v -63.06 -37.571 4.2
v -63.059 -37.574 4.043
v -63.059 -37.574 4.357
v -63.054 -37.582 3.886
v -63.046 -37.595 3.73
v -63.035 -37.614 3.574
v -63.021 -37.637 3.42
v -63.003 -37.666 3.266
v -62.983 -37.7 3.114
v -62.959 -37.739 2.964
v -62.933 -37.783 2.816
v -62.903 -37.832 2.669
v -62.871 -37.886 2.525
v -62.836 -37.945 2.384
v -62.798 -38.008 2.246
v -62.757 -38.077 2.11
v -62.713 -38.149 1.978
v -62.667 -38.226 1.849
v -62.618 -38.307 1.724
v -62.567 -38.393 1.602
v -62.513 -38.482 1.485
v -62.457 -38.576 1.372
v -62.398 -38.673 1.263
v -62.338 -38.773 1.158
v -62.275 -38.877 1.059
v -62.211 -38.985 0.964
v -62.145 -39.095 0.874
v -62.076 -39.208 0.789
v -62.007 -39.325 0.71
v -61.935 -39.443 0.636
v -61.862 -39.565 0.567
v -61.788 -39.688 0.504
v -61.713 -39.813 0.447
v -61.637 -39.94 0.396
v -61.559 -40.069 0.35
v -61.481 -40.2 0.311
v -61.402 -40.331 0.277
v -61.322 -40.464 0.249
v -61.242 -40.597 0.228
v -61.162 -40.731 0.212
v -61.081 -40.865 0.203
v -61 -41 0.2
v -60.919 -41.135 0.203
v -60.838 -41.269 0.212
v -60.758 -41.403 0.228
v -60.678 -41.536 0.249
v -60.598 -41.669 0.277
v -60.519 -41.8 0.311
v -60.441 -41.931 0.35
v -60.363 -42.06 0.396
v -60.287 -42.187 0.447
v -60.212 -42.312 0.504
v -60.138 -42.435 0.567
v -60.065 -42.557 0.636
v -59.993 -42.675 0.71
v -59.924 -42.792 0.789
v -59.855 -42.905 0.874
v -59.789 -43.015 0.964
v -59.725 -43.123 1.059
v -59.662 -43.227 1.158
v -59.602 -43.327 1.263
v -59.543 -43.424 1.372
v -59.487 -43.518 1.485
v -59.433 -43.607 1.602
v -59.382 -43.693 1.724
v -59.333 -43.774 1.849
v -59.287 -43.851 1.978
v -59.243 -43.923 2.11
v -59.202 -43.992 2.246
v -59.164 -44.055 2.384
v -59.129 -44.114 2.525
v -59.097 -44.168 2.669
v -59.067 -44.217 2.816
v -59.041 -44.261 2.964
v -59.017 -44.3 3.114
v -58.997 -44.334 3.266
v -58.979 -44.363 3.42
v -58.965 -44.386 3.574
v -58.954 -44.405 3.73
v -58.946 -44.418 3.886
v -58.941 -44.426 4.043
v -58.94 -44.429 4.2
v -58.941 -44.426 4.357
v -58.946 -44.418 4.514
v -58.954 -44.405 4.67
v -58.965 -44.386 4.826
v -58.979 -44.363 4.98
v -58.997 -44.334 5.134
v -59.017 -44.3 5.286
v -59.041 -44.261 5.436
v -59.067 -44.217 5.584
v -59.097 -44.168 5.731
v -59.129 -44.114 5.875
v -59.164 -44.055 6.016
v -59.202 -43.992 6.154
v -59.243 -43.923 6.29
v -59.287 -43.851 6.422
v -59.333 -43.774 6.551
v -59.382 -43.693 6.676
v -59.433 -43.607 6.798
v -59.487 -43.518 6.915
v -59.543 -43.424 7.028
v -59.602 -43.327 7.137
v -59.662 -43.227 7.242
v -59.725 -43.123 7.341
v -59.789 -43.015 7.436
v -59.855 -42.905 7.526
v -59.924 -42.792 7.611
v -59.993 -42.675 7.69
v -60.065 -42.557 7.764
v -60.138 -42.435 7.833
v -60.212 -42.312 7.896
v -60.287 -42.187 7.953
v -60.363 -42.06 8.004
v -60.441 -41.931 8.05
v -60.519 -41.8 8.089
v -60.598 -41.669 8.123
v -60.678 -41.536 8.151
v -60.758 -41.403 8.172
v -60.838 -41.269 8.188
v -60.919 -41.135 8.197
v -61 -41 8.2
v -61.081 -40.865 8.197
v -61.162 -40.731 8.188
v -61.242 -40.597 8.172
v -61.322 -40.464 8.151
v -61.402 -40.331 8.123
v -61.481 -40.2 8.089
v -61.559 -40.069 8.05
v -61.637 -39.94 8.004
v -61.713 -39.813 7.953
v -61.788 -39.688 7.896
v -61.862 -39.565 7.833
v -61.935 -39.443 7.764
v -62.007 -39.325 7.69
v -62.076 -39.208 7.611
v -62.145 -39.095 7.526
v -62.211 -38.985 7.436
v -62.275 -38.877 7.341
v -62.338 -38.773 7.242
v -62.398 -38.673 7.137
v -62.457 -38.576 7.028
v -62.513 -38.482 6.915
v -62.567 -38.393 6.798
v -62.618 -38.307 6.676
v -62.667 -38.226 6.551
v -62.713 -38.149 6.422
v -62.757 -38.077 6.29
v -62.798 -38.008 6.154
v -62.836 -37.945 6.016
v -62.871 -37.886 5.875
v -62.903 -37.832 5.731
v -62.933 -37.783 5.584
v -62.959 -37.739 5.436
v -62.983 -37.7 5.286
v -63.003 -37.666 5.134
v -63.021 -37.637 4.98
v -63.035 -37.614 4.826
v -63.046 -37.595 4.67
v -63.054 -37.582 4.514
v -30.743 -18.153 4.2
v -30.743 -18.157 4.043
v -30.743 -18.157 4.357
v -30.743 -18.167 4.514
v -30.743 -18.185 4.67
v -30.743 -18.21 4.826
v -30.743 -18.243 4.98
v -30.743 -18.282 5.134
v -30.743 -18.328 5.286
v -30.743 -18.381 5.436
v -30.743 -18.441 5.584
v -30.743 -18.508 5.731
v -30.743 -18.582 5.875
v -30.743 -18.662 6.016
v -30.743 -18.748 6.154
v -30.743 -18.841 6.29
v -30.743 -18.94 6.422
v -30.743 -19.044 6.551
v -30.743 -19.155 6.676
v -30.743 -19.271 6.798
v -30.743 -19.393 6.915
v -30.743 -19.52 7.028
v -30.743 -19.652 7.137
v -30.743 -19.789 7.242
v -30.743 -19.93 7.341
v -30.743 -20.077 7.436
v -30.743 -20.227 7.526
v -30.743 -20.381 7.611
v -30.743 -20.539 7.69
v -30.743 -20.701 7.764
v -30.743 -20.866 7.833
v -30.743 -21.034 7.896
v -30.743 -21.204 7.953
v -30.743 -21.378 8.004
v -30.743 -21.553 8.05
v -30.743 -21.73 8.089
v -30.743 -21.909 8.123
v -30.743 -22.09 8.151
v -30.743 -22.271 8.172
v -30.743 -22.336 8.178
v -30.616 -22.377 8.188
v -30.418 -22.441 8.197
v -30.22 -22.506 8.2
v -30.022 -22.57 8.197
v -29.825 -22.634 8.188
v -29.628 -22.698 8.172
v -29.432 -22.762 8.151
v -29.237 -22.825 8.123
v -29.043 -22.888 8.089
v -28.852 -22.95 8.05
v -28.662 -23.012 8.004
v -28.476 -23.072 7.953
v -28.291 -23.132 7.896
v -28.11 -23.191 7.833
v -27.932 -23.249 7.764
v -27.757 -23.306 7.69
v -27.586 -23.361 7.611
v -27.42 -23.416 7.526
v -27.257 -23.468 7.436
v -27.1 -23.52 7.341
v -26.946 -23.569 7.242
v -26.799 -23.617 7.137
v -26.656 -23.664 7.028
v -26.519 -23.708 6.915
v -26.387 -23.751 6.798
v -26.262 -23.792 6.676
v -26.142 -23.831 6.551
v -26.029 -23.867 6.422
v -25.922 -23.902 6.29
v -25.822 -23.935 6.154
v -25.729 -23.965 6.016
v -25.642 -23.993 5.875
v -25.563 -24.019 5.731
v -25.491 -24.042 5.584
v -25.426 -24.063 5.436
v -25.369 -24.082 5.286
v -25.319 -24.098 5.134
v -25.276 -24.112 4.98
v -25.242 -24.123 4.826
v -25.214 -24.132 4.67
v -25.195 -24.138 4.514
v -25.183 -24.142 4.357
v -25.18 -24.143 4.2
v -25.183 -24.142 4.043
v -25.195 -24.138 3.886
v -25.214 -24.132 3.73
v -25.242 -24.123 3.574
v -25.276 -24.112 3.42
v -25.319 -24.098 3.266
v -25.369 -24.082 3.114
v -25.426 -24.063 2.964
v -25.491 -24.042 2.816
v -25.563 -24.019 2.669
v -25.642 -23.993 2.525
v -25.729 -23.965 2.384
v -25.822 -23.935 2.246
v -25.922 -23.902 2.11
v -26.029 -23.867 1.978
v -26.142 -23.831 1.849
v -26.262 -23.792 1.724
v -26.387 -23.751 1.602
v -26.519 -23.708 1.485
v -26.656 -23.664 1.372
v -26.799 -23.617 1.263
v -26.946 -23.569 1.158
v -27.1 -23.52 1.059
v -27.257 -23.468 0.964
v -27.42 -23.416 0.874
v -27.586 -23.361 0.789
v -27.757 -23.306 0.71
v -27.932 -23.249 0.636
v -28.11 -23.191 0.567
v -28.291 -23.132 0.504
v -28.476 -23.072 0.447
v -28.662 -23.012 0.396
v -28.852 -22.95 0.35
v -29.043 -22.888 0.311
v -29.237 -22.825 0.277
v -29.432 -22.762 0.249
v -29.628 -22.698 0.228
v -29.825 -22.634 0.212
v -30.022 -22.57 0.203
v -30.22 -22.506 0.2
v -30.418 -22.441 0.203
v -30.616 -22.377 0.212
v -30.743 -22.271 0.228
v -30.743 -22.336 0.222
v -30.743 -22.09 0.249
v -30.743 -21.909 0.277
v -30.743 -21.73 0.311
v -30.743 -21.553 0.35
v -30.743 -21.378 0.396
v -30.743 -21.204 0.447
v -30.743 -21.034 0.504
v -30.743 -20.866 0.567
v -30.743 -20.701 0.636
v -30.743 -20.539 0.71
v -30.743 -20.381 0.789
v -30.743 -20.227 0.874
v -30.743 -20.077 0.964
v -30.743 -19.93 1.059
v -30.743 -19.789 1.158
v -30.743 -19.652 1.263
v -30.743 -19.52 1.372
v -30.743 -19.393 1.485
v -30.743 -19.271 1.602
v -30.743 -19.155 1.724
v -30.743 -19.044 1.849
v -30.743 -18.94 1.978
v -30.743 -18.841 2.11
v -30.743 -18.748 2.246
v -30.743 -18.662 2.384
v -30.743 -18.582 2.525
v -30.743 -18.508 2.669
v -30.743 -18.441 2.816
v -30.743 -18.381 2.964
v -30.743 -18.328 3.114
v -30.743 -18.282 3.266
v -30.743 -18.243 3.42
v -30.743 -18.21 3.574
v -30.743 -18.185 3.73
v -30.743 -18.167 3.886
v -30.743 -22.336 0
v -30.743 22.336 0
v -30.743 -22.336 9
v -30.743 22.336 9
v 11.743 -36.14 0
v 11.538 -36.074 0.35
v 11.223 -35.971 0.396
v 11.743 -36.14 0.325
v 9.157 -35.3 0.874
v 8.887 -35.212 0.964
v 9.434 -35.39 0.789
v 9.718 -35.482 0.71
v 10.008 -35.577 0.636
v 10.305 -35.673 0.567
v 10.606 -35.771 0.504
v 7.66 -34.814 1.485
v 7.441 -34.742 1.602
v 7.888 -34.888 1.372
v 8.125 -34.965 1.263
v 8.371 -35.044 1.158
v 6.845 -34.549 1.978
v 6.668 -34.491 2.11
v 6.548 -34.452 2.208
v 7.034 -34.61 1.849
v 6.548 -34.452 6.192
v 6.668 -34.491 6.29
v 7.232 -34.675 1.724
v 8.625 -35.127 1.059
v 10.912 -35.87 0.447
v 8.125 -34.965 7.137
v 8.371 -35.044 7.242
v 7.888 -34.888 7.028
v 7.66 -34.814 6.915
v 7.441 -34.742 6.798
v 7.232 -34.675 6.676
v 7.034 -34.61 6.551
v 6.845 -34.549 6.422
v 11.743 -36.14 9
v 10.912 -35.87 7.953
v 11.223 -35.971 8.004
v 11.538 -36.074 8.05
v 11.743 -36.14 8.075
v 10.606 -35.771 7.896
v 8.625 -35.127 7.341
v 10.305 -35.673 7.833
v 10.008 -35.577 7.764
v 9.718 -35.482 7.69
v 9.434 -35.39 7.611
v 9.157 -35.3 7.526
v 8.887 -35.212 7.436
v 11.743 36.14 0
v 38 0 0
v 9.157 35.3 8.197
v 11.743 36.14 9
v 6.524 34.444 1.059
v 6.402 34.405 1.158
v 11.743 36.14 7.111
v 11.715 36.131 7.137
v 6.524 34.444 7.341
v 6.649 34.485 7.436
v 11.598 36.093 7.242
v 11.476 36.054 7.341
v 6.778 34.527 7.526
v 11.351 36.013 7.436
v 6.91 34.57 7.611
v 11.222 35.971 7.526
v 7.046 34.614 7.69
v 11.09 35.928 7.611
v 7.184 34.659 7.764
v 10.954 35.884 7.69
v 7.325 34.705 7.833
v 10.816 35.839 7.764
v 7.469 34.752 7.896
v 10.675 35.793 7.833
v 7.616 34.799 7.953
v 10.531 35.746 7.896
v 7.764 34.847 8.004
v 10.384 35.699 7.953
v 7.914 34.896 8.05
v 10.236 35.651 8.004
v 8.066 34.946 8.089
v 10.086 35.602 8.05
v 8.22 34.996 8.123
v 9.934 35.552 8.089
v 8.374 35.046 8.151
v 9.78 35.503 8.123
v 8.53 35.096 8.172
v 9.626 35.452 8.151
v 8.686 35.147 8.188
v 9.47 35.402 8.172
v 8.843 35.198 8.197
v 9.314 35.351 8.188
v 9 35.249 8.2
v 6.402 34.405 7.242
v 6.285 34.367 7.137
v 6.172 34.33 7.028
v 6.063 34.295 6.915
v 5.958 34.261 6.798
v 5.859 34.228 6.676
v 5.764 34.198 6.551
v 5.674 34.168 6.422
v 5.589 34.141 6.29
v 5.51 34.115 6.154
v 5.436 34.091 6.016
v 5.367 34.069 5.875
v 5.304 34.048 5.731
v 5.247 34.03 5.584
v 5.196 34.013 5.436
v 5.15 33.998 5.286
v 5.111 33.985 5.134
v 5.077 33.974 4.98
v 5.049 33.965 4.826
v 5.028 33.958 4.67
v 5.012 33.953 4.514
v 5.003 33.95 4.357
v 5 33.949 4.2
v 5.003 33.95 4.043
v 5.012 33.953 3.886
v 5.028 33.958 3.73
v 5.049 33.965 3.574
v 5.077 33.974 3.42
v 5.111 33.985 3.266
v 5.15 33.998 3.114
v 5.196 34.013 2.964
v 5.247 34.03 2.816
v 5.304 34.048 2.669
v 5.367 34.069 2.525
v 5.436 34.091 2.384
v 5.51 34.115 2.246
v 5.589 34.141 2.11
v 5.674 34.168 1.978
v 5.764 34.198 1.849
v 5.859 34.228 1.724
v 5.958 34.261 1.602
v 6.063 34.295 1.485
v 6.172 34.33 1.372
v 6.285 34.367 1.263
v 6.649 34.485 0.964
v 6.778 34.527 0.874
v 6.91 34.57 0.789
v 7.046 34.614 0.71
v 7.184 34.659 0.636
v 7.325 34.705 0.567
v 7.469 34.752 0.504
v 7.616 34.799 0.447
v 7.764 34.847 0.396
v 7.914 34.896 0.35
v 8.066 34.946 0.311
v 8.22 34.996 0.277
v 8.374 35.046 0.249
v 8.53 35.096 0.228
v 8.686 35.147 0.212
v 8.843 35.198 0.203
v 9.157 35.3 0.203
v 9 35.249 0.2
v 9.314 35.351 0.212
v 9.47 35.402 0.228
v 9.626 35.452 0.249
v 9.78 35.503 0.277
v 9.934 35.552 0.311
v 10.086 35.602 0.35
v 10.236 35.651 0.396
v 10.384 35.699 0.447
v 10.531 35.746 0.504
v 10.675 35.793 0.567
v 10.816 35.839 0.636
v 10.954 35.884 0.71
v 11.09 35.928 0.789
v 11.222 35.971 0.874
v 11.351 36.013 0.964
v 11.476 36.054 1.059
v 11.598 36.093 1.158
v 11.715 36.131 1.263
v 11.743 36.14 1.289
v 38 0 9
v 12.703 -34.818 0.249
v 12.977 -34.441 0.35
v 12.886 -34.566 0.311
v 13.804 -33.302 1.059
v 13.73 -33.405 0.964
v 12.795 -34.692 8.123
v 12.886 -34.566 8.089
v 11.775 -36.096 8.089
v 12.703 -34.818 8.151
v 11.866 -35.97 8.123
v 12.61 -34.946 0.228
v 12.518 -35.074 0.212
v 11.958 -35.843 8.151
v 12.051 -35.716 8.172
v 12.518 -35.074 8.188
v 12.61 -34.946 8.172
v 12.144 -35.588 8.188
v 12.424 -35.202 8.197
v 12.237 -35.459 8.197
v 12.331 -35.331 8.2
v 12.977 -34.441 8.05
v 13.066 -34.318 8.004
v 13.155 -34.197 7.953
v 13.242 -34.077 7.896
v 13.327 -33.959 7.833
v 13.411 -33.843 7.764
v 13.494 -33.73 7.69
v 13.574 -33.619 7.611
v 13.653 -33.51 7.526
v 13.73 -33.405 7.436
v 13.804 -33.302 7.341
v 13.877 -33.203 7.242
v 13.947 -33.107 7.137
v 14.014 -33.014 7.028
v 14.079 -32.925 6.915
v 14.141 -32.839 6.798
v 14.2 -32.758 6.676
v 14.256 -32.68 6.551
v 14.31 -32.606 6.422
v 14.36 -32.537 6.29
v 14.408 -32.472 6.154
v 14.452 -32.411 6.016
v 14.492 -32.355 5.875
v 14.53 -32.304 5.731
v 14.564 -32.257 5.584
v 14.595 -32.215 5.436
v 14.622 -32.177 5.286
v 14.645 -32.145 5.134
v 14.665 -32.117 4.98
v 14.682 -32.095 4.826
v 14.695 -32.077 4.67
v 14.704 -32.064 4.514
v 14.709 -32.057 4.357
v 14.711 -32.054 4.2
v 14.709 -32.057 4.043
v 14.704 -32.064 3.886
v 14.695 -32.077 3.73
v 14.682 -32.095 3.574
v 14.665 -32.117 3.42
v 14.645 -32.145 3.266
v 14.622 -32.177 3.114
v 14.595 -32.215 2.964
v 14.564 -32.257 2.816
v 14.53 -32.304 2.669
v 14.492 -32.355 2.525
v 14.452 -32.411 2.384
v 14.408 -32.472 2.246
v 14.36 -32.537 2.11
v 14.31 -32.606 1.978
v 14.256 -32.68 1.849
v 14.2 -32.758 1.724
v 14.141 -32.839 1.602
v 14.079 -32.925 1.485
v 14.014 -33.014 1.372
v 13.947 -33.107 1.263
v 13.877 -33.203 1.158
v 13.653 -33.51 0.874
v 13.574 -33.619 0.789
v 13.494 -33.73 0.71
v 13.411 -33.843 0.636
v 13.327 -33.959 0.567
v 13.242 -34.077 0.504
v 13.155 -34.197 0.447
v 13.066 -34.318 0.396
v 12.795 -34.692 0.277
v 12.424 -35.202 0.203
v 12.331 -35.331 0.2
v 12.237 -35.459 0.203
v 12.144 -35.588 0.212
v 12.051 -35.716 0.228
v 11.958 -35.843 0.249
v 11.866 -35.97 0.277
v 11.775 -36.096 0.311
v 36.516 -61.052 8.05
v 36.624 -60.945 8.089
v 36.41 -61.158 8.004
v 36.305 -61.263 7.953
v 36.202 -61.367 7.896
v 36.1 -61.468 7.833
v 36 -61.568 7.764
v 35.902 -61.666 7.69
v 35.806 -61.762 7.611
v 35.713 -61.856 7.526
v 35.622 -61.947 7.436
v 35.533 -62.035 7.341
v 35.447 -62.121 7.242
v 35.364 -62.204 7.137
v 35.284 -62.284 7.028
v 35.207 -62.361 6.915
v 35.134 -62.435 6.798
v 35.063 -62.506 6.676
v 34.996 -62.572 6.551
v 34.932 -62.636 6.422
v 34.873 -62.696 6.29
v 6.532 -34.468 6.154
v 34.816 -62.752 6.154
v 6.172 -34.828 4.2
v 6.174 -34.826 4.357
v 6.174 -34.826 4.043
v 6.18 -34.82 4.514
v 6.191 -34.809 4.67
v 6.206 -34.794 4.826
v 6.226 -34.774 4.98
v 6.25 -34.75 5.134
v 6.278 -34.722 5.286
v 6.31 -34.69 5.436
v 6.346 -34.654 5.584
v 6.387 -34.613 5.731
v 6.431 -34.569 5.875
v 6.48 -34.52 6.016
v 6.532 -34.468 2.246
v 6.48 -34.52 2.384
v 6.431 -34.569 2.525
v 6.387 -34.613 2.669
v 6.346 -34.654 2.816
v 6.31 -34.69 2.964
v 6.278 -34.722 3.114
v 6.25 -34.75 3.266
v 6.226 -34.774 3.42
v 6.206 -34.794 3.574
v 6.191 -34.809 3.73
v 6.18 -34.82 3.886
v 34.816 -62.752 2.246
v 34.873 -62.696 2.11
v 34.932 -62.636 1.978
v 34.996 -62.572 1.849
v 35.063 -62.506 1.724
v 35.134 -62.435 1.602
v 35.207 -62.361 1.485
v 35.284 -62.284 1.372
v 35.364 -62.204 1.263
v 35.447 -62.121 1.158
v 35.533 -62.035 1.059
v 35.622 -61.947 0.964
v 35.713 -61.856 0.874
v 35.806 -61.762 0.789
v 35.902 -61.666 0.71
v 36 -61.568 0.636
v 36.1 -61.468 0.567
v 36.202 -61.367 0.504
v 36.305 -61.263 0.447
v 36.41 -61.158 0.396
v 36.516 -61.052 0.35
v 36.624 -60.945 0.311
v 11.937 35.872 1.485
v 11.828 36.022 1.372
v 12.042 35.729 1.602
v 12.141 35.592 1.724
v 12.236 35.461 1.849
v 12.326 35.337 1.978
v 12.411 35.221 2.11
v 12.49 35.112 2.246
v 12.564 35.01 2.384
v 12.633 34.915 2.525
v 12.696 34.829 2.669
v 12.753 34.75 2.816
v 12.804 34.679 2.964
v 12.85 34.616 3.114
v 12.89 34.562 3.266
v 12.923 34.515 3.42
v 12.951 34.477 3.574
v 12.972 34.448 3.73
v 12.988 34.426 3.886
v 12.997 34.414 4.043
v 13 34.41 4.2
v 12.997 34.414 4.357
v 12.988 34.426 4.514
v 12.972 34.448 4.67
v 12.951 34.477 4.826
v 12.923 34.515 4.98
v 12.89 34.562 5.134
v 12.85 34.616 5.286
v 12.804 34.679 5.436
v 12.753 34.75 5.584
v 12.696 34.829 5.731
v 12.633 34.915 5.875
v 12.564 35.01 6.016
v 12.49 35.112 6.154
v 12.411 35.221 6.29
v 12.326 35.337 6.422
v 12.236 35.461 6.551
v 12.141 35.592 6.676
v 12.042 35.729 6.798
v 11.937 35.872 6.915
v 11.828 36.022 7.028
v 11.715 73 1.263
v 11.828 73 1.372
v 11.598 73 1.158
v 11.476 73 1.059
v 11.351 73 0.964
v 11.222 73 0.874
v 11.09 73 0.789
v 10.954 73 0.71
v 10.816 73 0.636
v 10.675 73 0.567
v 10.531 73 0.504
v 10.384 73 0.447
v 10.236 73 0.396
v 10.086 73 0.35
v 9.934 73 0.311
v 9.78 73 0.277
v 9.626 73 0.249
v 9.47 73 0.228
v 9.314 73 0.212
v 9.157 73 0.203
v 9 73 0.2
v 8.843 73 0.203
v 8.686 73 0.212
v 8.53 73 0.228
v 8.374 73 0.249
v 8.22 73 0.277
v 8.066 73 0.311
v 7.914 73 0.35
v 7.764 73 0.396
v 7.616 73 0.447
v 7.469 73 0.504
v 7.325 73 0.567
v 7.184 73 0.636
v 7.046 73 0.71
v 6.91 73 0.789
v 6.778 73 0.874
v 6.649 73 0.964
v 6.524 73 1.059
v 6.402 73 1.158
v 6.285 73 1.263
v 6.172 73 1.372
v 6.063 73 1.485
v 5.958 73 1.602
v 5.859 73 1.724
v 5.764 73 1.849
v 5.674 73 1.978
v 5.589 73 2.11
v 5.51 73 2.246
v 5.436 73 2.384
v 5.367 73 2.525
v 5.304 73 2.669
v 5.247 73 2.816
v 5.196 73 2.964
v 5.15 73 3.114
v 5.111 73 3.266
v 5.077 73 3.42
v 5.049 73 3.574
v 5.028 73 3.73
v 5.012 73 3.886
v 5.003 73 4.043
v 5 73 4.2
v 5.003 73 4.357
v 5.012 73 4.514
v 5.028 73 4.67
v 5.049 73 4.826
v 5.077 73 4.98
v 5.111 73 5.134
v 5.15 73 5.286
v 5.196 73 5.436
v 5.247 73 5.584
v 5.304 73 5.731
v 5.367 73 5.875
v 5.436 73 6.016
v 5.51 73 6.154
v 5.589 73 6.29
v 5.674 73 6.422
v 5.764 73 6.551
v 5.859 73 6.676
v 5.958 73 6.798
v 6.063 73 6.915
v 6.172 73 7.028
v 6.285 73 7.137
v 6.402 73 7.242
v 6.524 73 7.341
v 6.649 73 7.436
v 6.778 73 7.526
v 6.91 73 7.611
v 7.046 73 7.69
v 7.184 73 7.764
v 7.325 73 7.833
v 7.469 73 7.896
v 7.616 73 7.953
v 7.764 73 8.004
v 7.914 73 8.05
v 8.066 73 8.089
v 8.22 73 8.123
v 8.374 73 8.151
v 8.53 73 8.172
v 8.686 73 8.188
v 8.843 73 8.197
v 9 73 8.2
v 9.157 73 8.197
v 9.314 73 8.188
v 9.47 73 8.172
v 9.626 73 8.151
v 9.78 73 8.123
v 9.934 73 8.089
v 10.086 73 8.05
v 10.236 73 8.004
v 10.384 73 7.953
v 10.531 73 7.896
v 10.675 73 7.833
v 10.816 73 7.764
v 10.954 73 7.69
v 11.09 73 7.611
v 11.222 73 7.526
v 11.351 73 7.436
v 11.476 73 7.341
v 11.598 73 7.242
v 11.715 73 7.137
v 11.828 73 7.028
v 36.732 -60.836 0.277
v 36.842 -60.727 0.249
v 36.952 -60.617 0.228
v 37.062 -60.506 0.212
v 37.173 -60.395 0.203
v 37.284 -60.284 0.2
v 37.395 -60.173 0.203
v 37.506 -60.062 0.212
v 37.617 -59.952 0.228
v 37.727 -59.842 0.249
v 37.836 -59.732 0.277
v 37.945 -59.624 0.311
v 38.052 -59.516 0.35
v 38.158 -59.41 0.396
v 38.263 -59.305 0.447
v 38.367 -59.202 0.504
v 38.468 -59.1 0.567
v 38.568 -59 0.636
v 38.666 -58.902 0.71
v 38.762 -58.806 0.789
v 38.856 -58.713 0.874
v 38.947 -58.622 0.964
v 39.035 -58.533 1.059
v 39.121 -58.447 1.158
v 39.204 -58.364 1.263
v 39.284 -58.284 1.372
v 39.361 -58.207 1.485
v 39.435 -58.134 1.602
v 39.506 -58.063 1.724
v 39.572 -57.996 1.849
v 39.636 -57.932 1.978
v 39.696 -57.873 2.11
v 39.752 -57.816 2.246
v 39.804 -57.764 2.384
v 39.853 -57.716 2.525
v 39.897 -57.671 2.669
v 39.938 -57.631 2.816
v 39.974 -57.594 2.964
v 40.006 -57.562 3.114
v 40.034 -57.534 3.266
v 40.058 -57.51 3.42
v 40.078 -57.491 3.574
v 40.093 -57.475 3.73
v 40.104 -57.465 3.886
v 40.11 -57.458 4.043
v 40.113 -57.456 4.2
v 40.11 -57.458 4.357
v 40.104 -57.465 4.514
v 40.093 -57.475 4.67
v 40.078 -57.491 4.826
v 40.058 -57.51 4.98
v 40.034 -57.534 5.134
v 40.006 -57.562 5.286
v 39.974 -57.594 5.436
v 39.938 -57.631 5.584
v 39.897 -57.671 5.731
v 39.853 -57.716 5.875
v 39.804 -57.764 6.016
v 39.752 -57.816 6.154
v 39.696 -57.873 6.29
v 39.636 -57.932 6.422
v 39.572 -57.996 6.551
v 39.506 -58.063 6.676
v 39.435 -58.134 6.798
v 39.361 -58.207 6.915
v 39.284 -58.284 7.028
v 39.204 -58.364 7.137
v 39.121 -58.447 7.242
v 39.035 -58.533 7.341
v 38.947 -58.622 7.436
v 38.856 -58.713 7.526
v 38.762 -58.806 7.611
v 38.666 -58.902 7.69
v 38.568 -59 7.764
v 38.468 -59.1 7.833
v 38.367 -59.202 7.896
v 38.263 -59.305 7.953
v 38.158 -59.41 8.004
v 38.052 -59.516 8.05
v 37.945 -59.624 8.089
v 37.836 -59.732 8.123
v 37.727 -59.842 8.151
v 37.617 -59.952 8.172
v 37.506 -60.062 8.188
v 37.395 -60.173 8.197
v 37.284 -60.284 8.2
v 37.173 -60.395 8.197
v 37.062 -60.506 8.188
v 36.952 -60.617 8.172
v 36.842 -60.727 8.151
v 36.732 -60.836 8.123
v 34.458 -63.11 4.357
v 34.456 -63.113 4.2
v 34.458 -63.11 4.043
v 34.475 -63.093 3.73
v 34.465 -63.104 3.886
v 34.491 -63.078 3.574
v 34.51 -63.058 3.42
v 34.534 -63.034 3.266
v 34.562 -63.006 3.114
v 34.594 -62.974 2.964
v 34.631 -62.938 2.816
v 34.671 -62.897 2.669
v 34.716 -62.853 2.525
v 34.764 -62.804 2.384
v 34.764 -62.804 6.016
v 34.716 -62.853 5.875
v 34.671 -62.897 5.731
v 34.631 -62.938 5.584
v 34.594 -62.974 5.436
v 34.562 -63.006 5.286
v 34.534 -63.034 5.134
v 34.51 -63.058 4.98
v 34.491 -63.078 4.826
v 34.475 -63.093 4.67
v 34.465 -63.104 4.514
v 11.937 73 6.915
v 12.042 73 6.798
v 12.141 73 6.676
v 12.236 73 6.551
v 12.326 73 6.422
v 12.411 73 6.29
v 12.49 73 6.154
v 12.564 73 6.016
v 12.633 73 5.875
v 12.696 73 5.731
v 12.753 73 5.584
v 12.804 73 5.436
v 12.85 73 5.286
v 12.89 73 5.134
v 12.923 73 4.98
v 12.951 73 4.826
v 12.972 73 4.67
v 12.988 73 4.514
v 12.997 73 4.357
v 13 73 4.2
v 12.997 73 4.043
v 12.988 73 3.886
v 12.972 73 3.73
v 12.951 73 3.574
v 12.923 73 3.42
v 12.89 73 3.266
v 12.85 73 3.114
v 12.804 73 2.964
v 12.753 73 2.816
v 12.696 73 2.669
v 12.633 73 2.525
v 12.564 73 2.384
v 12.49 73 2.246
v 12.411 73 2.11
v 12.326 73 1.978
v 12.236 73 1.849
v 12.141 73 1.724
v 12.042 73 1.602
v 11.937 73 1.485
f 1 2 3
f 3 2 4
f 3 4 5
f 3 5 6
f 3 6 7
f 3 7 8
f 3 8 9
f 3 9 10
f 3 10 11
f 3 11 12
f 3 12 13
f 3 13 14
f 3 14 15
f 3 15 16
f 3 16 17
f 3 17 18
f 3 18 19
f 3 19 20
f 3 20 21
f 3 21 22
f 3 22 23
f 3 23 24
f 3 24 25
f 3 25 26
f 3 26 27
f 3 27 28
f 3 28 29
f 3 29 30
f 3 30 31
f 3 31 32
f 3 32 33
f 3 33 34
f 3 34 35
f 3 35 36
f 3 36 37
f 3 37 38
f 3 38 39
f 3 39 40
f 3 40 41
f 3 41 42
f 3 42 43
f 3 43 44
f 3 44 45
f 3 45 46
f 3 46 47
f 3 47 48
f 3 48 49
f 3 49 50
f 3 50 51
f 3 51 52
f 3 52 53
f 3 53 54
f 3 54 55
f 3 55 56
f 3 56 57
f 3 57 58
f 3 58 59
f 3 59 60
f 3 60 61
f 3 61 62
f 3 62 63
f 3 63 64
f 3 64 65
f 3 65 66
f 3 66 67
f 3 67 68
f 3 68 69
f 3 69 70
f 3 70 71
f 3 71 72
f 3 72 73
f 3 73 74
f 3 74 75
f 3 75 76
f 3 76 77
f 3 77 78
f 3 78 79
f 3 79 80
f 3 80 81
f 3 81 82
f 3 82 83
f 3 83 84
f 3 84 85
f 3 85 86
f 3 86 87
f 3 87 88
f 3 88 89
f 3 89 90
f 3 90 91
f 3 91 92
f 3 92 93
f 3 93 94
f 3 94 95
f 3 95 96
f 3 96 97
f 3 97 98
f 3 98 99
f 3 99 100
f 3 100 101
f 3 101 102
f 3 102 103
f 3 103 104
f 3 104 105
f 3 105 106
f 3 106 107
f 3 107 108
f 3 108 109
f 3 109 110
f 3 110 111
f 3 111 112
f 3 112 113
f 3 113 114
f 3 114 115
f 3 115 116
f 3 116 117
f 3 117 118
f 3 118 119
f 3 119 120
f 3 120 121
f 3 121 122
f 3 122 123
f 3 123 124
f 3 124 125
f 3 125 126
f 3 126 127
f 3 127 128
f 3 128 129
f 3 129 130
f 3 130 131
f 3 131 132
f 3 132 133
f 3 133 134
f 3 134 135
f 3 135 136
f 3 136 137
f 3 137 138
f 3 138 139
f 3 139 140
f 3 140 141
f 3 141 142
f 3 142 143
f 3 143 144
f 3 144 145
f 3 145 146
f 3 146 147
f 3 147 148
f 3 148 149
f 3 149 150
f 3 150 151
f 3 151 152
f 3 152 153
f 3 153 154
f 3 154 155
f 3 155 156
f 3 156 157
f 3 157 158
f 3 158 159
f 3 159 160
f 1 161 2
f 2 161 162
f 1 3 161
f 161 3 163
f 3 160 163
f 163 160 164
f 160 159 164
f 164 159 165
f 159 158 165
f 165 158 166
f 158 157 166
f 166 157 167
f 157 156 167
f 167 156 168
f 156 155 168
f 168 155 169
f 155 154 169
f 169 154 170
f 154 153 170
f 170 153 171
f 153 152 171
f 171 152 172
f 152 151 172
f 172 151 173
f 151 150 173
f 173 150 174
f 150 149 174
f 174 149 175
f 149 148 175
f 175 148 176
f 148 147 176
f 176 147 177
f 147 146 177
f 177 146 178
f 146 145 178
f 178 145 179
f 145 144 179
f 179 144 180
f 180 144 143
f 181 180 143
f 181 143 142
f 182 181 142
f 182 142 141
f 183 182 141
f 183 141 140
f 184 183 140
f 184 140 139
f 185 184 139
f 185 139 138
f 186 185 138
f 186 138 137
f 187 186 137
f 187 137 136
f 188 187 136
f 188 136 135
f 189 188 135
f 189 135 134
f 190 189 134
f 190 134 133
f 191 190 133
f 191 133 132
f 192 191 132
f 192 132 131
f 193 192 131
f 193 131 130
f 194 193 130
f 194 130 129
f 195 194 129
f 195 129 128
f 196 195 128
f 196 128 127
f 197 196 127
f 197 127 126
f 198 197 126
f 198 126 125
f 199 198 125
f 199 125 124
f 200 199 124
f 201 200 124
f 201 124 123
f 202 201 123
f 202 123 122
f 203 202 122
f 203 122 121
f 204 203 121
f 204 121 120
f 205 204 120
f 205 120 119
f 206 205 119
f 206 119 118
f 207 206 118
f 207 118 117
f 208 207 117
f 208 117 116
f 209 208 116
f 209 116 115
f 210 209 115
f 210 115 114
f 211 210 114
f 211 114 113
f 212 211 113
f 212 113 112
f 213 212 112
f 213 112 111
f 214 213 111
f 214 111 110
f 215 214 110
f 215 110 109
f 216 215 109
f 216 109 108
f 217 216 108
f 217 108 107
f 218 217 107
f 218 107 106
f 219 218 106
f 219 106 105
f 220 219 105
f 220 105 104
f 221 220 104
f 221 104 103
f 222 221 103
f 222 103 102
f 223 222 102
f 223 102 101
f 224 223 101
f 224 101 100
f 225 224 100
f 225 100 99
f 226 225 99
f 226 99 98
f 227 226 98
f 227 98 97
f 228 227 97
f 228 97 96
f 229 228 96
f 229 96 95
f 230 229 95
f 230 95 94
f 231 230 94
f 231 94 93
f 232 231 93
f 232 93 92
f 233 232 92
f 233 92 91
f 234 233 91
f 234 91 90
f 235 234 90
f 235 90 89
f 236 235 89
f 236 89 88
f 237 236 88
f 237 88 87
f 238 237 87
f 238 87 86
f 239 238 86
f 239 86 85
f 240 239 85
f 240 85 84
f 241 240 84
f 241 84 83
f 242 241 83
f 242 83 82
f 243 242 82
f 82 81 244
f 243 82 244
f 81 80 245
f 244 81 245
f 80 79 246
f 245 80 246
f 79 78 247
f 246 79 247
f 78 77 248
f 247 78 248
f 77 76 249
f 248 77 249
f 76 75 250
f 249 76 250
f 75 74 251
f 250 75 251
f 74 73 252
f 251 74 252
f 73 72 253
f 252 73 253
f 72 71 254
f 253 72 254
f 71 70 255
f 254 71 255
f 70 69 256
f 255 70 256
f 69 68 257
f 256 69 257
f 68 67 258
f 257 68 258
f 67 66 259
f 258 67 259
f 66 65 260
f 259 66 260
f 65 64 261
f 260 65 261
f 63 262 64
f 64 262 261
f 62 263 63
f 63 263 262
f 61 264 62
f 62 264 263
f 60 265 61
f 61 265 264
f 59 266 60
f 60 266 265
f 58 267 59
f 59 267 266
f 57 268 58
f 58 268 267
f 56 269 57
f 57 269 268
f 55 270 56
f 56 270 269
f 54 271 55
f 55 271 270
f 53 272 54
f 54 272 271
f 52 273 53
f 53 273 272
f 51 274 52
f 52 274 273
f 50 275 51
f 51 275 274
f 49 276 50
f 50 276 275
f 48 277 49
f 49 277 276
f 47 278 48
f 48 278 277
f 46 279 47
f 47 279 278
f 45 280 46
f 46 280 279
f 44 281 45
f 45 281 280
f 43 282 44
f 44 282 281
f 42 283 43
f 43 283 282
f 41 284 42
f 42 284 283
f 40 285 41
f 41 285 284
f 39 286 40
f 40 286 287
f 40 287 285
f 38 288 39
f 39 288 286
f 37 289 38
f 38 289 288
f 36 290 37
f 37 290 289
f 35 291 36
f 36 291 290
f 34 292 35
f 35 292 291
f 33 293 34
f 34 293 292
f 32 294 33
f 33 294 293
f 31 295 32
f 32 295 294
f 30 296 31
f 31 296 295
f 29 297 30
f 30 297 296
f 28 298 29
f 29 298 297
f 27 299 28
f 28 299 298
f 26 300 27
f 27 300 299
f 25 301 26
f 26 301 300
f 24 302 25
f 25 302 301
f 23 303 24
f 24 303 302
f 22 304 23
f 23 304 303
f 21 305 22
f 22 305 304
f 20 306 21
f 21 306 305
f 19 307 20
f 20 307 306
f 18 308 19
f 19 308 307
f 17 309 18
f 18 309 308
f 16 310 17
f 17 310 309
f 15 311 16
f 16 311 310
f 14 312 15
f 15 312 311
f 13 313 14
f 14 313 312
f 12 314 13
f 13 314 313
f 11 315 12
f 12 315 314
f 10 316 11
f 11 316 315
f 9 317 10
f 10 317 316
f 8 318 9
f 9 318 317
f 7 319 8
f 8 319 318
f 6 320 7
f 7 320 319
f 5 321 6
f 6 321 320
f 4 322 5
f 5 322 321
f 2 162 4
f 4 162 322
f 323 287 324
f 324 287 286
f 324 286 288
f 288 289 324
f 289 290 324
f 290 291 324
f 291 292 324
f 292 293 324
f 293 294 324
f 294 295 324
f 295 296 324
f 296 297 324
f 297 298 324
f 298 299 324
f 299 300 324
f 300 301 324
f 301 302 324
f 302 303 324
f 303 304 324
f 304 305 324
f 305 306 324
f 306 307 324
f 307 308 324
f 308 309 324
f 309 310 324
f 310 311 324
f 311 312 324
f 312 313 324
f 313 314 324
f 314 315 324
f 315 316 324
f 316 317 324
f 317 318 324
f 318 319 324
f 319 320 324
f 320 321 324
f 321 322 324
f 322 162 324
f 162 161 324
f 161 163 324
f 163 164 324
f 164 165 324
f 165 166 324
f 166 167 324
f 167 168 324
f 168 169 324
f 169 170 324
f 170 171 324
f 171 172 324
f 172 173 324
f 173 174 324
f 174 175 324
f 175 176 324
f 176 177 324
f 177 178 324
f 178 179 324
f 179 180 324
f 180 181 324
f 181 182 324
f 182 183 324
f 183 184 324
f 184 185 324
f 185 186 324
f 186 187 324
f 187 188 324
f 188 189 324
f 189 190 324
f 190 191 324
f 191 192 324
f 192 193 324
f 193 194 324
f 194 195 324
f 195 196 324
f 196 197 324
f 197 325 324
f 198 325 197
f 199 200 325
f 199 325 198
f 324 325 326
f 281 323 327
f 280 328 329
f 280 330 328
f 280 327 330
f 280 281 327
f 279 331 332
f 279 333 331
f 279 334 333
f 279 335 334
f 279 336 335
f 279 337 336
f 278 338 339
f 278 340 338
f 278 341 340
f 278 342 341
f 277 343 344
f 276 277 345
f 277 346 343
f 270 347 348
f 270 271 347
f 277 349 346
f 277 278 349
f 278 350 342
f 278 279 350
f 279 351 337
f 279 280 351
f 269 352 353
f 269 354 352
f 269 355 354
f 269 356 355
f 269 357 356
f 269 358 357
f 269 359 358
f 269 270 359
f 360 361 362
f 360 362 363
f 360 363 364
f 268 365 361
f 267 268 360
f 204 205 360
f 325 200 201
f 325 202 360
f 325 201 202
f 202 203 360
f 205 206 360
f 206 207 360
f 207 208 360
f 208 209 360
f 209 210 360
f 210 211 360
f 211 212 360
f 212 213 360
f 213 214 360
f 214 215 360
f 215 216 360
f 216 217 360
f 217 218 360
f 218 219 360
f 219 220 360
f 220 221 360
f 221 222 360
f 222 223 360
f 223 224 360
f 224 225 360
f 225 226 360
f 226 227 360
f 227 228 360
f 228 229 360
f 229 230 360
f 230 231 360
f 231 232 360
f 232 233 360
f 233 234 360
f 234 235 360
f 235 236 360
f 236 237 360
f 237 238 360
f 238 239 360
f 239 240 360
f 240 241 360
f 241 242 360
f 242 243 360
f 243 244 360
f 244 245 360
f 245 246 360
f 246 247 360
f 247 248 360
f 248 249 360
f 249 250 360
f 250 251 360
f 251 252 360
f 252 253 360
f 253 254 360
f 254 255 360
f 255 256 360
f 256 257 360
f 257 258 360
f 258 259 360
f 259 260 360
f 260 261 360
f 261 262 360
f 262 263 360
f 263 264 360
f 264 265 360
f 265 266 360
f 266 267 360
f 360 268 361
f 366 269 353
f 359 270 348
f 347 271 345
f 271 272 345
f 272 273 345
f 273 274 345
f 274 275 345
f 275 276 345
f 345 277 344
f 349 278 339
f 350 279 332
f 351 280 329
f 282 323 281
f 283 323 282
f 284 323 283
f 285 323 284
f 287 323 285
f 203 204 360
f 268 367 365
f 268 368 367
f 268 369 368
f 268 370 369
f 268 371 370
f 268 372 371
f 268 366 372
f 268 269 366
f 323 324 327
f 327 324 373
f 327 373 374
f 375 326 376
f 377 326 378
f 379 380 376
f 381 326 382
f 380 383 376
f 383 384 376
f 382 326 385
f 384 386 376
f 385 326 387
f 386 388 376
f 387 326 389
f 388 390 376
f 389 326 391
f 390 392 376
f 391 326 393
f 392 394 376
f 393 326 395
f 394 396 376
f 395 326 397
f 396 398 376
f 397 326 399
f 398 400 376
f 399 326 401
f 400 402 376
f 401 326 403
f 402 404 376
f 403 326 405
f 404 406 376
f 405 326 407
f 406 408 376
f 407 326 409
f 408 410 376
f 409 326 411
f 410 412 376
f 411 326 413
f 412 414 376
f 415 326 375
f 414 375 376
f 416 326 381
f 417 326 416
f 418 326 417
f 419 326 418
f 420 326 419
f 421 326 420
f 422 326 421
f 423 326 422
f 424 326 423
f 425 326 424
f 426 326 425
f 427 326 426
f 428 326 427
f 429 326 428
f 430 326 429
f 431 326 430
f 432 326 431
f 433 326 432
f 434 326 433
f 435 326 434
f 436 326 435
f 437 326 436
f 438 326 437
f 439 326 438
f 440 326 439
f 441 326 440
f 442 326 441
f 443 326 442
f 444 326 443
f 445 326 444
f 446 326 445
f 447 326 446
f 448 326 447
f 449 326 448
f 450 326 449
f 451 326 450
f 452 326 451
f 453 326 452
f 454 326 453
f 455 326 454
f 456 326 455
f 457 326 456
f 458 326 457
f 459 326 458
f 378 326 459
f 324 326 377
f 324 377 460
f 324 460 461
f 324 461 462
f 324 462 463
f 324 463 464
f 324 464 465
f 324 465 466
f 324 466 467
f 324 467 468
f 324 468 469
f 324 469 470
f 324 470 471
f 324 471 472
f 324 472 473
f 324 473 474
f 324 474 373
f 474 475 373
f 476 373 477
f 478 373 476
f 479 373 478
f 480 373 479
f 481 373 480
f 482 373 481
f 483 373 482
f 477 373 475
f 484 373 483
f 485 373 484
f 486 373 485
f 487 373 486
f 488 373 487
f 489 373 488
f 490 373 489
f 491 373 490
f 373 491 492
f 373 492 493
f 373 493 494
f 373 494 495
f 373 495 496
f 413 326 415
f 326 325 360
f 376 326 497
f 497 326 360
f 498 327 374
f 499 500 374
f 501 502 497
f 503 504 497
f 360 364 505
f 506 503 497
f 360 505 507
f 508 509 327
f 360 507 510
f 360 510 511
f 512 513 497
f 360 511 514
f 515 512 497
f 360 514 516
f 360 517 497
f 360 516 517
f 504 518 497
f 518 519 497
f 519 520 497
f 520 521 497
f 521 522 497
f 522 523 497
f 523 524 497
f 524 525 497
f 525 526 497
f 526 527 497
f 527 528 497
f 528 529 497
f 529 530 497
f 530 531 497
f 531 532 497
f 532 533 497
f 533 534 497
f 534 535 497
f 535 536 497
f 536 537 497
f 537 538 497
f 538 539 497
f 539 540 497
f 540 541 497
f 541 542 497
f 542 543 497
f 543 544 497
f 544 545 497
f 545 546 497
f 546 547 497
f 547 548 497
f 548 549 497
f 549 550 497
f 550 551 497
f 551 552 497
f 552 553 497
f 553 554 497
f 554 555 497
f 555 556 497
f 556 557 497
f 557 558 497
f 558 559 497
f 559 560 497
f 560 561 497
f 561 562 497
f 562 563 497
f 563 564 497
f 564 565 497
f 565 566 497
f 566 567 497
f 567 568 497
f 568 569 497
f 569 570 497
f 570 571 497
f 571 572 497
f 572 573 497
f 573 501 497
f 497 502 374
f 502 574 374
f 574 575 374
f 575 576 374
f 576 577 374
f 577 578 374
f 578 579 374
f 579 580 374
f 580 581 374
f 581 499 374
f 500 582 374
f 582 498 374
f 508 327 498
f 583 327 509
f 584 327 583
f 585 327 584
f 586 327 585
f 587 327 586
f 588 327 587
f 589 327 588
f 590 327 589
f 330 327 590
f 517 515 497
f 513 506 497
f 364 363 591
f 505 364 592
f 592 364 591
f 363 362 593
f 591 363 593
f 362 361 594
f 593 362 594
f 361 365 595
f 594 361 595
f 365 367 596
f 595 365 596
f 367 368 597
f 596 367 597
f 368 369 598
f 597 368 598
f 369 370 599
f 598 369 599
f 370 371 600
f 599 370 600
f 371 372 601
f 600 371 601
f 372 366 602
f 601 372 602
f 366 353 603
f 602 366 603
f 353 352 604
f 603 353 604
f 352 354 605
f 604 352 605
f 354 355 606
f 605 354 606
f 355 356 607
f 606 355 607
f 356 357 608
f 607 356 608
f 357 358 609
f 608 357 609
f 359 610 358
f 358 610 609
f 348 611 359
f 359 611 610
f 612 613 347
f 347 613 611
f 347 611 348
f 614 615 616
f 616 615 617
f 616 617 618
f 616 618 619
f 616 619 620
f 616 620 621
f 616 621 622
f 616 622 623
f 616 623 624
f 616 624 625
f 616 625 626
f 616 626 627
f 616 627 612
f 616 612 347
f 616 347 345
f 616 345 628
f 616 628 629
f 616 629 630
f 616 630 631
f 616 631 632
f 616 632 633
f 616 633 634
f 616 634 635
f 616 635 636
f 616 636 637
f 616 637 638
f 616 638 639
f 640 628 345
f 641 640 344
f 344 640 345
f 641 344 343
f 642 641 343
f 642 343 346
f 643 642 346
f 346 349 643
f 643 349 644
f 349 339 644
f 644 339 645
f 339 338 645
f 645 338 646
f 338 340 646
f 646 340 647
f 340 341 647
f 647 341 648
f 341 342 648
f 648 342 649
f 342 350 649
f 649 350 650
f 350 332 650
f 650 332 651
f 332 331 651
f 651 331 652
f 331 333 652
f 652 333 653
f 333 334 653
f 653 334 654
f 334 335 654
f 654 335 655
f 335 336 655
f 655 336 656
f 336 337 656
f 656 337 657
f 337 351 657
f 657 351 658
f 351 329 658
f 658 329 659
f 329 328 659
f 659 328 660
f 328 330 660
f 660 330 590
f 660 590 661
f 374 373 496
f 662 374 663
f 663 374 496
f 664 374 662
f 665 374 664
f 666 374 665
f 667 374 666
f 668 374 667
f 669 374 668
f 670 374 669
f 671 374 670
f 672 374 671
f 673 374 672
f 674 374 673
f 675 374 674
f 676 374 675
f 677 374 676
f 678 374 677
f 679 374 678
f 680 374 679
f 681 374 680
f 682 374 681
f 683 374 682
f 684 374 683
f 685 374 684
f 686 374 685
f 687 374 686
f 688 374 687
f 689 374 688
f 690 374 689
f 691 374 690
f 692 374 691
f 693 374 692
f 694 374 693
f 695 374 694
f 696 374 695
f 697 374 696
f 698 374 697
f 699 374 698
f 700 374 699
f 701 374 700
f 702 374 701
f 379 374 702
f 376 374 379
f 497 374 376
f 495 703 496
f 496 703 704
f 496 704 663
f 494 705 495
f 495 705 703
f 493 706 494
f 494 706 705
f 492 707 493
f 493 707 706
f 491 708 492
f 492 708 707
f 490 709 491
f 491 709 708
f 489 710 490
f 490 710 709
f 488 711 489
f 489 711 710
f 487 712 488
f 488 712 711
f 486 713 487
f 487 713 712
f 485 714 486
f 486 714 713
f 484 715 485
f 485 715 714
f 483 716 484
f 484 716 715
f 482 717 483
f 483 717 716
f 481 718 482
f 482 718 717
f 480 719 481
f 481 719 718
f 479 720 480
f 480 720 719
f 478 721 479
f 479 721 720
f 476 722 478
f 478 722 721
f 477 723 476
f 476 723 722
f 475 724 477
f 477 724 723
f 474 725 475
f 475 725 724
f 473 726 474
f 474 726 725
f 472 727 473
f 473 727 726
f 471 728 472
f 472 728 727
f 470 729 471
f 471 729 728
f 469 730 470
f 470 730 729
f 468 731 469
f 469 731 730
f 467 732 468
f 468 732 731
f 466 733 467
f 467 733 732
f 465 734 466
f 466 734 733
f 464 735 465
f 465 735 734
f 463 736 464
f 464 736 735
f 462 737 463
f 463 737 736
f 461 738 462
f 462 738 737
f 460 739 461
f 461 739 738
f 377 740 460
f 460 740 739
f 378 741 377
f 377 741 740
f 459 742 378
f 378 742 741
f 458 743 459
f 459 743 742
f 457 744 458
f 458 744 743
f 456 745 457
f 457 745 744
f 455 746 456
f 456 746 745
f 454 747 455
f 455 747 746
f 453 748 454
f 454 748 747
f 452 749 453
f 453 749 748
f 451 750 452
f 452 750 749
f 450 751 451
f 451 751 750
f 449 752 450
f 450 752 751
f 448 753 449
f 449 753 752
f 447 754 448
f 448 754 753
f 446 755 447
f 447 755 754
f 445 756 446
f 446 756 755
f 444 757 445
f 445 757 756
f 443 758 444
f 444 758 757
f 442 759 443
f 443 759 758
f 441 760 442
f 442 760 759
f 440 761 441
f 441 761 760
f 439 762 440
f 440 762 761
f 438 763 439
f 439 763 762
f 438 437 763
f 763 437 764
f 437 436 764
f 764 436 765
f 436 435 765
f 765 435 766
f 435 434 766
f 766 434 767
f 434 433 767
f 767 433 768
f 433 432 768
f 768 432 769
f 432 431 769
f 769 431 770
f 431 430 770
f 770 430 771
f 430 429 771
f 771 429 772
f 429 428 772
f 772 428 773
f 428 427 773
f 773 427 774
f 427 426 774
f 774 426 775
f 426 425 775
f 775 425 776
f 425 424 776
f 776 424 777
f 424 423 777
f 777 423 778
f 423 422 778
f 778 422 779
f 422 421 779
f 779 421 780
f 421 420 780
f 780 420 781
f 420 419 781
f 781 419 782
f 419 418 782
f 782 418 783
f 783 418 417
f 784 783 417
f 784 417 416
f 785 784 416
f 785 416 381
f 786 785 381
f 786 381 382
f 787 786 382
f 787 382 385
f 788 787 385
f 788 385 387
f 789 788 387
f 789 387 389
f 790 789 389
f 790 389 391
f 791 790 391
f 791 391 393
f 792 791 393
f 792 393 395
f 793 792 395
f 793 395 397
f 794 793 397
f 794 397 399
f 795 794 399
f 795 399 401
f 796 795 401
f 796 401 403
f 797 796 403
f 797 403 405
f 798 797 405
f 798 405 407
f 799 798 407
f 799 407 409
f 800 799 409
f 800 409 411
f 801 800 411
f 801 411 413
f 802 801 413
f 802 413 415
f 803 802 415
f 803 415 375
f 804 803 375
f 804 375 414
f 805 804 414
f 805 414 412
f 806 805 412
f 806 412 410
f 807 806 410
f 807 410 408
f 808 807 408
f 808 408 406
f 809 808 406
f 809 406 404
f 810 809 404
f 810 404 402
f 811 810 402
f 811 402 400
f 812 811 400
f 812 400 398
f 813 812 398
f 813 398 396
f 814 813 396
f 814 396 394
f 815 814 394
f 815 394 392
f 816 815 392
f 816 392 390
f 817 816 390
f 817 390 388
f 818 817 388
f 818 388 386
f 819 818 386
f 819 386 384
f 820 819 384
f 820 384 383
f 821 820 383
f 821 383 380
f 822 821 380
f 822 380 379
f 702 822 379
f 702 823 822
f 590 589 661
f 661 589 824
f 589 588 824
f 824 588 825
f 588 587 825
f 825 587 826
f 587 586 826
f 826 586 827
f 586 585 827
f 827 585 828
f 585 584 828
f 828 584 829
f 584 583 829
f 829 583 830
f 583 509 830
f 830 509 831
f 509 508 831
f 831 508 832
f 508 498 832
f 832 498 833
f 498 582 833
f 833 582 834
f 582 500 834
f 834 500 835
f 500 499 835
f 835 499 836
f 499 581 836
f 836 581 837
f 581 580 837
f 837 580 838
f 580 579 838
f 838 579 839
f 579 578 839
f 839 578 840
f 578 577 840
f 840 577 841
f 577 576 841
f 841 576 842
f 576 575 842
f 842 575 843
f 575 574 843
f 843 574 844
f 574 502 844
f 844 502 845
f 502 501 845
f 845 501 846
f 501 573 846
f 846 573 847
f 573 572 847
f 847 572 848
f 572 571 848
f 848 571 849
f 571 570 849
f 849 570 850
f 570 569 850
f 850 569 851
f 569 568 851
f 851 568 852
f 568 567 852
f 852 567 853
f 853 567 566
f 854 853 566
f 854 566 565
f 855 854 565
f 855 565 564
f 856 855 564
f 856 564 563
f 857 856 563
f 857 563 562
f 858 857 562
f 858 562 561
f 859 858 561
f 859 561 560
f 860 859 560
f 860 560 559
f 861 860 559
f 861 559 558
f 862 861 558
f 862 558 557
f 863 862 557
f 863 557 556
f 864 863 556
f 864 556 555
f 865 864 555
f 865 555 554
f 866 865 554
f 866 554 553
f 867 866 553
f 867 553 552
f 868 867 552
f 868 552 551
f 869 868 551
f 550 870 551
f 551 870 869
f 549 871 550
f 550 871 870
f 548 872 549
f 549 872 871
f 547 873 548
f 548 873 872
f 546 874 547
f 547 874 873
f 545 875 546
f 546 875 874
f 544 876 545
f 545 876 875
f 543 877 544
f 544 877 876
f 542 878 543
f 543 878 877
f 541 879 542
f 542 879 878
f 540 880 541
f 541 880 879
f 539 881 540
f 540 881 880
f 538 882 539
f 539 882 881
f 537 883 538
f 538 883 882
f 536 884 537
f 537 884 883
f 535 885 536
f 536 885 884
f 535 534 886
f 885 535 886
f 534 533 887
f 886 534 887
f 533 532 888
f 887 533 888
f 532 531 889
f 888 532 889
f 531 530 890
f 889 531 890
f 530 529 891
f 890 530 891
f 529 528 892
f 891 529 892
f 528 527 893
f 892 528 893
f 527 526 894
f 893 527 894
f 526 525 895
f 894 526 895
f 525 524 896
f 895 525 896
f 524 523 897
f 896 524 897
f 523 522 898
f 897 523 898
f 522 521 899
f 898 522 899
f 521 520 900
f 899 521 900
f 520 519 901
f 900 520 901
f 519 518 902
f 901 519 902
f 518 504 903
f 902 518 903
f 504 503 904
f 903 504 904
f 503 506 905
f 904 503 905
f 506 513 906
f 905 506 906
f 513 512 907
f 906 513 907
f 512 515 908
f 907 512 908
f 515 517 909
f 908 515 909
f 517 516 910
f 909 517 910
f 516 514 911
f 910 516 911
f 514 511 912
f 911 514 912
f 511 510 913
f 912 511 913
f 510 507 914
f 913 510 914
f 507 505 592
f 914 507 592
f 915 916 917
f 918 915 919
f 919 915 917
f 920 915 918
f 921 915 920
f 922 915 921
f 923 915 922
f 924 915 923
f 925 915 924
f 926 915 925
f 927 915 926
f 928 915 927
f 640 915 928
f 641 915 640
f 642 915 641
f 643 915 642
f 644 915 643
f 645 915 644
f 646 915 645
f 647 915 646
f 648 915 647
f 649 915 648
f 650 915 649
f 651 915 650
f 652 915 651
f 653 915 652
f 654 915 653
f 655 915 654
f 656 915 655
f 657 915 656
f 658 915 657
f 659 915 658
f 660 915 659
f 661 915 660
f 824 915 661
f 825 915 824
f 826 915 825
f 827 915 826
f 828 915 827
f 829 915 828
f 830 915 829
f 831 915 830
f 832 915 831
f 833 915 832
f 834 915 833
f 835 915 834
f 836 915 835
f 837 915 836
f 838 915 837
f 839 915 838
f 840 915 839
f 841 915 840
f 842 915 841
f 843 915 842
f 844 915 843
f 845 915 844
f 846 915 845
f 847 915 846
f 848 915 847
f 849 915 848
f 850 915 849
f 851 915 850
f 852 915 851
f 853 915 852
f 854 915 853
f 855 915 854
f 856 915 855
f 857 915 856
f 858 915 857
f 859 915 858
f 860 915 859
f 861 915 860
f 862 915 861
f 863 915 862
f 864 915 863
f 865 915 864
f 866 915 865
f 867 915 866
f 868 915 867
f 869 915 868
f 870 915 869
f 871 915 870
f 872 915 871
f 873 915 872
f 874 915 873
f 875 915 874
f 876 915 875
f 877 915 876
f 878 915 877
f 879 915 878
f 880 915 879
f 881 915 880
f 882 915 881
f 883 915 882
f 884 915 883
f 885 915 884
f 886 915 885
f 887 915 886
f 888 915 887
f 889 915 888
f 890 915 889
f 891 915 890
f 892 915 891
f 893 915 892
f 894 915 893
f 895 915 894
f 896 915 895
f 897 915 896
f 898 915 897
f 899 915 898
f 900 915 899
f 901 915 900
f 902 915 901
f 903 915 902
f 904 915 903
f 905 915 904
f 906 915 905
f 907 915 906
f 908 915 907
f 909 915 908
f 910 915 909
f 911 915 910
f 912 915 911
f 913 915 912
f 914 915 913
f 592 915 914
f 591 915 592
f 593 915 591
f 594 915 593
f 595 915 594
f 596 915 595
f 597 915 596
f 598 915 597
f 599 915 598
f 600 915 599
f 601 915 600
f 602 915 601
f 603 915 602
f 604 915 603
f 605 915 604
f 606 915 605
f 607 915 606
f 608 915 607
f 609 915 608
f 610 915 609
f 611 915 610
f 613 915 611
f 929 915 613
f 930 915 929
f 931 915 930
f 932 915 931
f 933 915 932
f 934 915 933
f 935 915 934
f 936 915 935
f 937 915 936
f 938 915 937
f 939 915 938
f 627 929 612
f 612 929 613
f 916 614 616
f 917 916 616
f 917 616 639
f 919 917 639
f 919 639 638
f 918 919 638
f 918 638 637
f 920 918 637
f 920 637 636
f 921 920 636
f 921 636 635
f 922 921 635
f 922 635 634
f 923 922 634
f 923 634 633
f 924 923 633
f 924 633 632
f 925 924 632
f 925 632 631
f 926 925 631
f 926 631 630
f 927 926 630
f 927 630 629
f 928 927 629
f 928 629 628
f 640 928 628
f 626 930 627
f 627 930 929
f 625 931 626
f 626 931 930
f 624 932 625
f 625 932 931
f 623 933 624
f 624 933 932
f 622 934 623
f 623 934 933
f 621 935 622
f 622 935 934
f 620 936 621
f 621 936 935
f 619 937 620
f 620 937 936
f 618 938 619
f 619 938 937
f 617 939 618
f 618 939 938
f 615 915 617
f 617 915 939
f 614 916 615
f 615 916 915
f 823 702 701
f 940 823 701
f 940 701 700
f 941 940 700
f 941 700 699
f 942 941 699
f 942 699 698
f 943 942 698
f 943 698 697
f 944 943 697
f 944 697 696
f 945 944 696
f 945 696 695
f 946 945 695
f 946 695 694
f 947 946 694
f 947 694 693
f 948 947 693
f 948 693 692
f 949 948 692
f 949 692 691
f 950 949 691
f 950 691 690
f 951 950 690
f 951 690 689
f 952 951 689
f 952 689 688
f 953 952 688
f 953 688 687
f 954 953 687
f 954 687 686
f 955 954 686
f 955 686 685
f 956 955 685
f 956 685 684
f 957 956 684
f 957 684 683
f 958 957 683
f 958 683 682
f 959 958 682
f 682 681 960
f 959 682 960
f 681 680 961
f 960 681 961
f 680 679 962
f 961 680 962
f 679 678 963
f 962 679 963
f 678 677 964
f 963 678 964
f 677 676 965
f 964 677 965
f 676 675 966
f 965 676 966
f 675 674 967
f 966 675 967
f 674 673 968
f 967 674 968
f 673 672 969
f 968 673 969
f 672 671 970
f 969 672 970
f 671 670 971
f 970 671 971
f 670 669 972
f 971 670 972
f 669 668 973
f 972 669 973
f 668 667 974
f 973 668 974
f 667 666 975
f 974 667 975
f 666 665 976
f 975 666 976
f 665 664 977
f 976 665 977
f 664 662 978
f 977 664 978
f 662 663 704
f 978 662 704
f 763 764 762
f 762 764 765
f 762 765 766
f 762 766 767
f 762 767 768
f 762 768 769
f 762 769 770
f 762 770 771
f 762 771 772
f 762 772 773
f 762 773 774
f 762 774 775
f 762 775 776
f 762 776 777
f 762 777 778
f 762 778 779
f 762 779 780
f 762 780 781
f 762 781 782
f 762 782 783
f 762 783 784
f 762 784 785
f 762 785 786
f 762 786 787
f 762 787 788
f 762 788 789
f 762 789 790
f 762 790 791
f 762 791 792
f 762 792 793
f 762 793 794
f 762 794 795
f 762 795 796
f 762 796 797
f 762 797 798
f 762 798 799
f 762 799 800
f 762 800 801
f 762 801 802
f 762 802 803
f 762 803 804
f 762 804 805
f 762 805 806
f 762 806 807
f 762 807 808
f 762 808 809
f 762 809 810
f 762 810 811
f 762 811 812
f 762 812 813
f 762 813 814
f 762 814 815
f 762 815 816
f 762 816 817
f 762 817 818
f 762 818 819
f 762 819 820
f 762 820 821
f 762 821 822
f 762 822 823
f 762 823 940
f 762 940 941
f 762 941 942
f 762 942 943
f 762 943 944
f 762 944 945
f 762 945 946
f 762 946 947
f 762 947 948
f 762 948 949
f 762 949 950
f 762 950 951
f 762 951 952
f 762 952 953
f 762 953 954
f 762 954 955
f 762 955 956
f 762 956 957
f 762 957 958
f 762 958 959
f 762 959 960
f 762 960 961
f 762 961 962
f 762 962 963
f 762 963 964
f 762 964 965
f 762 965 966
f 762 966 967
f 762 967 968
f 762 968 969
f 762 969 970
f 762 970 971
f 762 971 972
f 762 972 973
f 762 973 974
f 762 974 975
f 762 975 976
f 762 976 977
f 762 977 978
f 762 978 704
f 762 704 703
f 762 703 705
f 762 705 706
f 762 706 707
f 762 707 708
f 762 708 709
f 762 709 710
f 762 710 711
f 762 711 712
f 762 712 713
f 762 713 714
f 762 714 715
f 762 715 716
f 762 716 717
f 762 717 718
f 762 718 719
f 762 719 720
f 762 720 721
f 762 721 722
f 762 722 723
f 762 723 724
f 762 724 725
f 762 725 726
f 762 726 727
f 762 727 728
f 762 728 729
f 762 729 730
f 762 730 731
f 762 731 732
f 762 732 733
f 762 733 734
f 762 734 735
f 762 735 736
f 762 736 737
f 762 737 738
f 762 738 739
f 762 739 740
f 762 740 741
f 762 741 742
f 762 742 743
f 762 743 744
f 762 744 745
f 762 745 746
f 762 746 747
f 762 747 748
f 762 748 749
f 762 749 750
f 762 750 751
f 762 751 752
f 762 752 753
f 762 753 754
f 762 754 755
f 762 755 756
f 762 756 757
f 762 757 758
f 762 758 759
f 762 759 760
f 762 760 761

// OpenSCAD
//Дезоксирибоза    
module plaid() {  
$fn=5;  
x=9;    
y=38; 
z=38;   
cylinder(x, y, z);     
}   
//связь                          
module connect() {            
$fn=160;			  
dx=4.2;                     
//difference () {                                             
translate([9,73,dx]) rotate([90,0,0]) cylinder(40,4,4);		                
//rotate ([90,0,0])translate ([30,7.5,-200.1])cylinder (3.5,5,5);                   
    
//}                                       
  
//difference() {                                                    
translate([9,-32,dx]) rotate([90,0,45]) cylinder(40,4,4);                               
//rotate ([90,45,45])translate ([-35,-24,196.1])cylinder (3.5,5,5);                         
                  
//}		                      
//difference () {                                                   
translate([-61,-41,dx]) rotate([45,90,76]) cylinder(40,4,4);			                  
//rotate ([90,90,-59])translate ([-7.5,8.5,204.7])cylinder (3.5,5,5);                   
// }		                      
}                       
plaid();		                  
connect();	      
